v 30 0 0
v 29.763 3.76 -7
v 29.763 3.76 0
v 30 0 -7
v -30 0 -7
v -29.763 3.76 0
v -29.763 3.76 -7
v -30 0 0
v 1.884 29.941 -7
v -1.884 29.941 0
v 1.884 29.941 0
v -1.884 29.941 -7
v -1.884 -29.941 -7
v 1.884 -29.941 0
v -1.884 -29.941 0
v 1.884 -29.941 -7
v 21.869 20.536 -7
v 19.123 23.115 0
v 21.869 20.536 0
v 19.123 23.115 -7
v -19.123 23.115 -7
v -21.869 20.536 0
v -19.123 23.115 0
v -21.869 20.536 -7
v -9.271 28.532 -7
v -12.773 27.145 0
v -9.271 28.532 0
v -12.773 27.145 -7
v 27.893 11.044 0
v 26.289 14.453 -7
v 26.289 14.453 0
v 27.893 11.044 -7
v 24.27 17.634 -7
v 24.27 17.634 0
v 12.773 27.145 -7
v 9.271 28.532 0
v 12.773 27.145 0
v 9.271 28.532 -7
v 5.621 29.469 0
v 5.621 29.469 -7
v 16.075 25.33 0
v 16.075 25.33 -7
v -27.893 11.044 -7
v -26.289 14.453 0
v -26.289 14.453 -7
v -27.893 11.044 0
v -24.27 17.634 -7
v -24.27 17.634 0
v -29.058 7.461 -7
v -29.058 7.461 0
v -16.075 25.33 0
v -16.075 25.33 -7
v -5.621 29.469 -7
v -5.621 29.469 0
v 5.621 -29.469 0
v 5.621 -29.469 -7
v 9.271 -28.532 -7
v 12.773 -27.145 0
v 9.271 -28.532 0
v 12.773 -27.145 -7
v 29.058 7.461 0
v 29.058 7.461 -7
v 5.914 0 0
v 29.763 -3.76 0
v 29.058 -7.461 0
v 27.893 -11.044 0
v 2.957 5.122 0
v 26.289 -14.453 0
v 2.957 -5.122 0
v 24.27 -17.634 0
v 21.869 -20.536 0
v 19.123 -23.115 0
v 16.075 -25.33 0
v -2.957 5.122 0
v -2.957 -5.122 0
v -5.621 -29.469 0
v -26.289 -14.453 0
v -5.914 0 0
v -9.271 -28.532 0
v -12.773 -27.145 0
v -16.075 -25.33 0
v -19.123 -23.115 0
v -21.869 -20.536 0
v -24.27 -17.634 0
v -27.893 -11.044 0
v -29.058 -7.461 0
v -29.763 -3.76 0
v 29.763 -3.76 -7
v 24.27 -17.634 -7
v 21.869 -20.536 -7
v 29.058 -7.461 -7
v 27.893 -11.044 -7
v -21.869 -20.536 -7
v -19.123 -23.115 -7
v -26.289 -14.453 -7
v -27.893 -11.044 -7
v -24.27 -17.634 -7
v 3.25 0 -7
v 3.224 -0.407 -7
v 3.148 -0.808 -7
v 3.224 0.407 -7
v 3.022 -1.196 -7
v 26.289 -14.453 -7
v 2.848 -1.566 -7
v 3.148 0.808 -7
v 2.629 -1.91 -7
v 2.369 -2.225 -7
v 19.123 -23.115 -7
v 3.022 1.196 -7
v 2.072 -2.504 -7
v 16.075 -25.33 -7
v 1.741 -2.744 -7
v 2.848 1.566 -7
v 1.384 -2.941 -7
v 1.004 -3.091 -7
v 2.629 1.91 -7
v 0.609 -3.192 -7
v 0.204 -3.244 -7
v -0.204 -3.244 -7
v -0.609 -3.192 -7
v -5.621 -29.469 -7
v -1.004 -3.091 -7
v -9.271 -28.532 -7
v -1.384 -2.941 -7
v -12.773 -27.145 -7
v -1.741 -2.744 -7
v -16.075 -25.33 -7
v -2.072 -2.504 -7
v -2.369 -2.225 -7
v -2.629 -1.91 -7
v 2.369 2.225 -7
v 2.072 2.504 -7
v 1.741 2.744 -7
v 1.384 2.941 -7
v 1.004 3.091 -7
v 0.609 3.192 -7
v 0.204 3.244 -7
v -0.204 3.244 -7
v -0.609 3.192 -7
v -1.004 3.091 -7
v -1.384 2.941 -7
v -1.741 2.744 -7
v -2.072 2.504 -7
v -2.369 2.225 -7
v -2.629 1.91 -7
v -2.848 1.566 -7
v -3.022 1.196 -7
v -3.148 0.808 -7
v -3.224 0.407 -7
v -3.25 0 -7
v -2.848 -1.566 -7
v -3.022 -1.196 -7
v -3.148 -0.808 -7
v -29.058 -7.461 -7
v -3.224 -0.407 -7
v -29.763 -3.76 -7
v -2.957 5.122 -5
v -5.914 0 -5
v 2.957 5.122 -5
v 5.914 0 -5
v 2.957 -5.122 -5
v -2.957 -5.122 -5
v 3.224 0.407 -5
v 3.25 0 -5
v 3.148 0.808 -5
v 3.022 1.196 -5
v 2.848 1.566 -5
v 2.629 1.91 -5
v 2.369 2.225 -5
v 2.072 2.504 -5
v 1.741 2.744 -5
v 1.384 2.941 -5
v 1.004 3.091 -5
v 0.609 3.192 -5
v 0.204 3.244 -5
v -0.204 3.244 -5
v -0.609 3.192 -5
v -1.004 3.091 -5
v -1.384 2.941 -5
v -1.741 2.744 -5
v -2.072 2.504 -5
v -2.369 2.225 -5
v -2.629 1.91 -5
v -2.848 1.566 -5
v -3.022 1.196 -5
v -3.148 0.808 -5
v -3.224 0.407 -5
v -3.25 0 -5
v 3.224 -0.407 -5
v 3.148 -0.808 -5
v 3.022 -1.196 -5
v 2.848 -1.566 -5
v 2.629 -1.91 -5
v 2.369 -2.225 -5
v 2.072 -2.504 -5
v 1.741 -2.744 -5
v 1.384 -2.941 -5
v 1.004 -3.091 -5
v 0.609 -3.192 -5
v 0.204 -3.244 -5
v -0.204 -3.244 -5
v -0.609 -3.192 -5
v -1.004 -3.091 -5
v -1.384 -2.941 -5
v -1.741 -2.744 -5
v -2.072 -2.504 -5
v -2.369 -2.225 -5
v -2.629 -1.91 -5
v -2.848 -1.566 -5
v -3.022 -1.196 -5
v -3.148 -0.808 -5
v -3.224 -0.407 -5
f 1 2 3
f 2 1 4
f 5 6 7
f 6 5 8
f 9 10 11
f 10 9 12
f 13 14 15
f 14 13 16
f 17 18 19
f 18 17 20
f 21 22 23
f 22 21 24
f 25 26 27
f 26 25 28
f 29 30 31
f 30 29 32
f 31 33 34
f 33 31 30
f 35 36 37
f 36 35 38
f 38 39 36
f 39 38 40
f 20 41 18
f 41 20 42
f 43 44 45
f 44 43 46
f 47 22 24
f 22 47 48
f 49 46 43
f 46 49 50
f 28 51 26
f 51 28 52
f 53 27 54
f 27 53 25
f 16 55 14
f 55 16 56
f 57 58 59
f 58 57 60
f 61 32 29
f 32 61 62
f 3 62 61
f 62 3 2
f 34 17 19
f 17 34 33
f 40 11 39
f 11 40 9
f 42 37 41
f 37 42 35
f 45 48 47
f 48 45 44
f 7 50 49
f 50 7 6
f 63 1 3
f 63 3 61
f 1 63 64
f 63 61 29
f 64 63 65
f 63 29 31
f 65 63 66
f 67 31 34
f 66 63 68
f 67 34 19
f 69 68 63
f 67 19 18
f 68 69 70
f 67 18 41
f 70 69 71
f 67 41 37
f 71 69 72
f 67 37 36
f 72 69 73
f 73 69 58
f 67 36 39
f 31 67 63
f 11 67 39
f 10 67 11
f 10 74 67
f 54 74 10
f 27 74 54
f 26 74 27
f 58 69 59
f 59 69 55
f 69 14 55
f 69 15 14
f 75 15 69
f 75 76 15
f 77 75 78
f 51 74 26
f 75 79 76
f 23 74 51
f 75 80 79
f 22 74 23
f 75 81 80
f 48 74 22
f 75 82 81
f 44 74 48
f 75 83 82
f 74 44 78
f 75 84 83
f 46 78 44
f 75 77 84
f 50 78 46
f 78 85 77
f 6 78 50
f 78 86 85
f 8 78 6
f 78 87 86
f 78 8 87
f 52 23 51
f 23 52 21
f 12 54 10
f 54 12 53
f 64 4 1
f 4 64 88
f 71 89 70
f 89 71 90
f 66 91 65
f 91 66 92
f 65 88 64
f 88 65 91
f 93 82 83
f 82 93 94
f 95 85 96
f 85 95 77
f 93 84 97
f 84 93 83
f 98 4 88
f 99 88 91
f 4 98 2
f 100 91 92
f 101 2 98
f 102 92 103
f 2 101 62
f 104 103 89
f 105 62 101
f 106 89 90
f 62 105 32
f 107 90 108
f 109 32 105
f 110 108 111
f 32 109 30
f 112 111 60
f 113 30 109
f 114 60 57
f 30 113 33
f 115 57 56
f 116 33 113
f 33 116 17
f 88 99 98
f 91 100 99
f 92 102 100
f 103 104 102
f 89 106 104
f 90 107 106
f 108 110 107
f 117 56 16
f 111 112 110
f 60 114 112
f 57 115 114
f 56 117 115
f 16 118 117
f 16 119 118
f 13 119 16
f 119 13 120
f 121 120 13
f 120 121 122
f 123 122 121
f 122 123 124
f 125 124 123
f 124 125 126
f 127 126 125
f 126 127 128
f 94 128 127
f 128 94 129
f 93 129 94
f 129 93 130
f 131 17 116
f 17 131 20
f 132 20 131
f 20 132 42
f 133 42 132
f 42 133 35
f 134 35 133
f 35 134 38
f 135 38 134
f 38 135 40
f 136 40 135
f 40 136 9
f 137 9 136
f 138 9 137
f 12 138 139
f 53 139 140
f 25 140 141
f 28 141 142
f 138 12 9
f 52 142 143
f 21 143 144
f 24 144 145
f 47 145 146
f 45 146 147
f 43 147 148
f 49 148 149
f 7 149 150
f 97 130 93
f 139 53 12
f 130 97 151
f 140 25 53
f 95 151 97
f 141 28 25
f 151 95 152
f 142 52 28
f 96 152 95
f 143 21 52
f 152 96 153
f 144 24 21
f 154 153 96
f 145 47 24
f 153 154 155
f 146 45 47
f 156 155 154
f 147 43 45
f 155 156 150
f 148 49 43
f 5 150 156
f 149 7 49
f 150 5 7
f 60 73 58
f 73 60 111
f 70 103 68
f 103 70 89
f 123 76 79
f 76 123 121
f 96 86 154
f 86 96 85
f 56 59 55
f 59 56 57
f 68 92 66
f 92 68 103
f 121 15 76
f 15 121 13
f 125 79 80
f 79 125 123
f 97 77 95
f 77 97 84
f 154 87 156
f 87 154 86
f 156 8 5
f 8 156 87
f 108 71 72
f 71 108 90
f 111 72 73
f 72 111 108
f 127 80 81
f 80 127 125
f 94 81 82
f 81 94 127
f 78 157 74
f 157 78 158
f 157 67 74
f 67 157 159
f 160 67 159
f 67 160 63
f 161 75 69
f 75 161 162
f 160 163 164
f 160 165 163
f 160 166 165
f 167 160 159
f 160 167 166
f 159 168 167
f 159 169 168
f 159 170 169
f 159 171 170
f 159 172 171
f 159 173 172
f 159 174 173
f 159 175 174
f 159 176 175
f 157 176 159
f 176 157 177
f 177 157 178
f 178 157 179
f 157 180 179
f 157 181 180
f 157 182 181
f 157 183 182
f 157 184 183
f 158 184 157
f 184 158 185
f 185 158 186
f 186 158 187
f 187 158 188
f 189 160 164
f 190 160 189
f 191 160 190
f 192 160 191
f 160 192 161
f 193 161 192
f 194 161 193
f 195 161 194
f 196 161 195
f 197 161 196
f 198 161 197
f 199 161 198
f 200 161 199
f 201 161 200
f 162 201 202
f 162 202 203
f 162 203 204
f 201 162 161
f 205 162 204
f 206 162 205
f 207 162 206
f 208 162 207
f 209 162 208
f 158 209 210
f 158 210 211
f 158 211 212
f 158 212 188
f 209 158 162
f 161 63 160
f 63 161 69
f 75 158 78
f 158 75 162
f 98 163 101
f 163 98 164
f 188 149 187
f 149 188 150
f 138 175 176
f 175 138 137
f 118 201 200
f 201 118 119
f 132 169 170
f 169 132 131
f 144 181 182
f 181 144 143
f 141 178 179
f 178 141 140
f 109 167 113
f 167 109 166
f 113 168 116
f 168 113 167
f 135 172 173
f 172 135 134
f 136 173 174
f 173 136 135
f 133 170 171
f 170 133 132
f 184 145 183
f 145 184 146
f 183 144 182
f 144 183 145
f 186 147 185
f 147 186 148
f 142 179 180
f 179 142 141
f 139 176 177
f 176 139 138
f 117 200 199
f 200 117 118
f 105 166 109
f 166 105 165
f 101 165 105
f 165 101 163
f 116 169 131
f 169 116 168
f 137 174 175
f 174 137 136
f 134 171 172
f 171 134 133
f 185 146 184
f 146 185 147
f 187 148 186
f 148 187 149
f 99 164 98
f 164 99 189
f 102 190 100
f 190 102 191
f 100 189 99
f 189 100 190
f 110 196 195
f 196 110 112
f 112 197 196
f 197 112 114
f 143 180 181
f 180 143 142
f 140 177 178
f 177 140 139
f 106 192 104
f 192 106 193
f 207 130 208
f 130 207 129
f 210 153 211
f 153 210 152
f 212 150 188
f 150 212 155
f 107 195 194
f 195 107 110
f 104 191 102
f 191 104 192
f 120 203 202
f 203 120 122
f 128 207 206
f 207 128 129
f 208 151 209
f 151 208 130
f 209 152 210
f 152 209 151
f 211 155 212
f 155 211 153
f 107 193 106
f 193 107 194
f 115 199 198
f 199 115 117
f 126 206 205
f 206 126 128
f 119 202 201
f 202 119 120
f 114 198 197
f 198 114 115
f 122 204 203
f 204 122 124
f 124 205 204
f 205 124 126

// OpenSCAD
$fn = 50;


difference() {
	union() {
		translate(v = [0, 0, -7.0000000000]) {
			cylinder(h = 7.0000000000, r = 30.0000000000);
		}
		translate(v = [0, 0, -8.5000000000]) {
			cylinder(h = 8.5000000000, r = 2.8750000000);
		}
	}
	union() {
		translate(v = [0, 0, 0]) {
			rotate(a = [0, 0, 0]) {
				difference() {
					union() {
						translate(v = [0, 0, -5]) {
							linear_extrude(height = 5) {
								polygon(points = [[5.9142500000, 0.0000000000], [2.9571250000, 5.1218907443], [-2.9571250000, 5.1218907443], [-5.9142500000, 0.0000000000], [-2.9571250000, -5.1218907443], [2.9571250000, -5.1218907443]]);
							}
						}
					}
					union();
				}
			}
		}
		#translate(v = [0, 0, -100.0000000000]) {
			cylinder(h = 200, r = 3.2500000000);
		}
	}
}
